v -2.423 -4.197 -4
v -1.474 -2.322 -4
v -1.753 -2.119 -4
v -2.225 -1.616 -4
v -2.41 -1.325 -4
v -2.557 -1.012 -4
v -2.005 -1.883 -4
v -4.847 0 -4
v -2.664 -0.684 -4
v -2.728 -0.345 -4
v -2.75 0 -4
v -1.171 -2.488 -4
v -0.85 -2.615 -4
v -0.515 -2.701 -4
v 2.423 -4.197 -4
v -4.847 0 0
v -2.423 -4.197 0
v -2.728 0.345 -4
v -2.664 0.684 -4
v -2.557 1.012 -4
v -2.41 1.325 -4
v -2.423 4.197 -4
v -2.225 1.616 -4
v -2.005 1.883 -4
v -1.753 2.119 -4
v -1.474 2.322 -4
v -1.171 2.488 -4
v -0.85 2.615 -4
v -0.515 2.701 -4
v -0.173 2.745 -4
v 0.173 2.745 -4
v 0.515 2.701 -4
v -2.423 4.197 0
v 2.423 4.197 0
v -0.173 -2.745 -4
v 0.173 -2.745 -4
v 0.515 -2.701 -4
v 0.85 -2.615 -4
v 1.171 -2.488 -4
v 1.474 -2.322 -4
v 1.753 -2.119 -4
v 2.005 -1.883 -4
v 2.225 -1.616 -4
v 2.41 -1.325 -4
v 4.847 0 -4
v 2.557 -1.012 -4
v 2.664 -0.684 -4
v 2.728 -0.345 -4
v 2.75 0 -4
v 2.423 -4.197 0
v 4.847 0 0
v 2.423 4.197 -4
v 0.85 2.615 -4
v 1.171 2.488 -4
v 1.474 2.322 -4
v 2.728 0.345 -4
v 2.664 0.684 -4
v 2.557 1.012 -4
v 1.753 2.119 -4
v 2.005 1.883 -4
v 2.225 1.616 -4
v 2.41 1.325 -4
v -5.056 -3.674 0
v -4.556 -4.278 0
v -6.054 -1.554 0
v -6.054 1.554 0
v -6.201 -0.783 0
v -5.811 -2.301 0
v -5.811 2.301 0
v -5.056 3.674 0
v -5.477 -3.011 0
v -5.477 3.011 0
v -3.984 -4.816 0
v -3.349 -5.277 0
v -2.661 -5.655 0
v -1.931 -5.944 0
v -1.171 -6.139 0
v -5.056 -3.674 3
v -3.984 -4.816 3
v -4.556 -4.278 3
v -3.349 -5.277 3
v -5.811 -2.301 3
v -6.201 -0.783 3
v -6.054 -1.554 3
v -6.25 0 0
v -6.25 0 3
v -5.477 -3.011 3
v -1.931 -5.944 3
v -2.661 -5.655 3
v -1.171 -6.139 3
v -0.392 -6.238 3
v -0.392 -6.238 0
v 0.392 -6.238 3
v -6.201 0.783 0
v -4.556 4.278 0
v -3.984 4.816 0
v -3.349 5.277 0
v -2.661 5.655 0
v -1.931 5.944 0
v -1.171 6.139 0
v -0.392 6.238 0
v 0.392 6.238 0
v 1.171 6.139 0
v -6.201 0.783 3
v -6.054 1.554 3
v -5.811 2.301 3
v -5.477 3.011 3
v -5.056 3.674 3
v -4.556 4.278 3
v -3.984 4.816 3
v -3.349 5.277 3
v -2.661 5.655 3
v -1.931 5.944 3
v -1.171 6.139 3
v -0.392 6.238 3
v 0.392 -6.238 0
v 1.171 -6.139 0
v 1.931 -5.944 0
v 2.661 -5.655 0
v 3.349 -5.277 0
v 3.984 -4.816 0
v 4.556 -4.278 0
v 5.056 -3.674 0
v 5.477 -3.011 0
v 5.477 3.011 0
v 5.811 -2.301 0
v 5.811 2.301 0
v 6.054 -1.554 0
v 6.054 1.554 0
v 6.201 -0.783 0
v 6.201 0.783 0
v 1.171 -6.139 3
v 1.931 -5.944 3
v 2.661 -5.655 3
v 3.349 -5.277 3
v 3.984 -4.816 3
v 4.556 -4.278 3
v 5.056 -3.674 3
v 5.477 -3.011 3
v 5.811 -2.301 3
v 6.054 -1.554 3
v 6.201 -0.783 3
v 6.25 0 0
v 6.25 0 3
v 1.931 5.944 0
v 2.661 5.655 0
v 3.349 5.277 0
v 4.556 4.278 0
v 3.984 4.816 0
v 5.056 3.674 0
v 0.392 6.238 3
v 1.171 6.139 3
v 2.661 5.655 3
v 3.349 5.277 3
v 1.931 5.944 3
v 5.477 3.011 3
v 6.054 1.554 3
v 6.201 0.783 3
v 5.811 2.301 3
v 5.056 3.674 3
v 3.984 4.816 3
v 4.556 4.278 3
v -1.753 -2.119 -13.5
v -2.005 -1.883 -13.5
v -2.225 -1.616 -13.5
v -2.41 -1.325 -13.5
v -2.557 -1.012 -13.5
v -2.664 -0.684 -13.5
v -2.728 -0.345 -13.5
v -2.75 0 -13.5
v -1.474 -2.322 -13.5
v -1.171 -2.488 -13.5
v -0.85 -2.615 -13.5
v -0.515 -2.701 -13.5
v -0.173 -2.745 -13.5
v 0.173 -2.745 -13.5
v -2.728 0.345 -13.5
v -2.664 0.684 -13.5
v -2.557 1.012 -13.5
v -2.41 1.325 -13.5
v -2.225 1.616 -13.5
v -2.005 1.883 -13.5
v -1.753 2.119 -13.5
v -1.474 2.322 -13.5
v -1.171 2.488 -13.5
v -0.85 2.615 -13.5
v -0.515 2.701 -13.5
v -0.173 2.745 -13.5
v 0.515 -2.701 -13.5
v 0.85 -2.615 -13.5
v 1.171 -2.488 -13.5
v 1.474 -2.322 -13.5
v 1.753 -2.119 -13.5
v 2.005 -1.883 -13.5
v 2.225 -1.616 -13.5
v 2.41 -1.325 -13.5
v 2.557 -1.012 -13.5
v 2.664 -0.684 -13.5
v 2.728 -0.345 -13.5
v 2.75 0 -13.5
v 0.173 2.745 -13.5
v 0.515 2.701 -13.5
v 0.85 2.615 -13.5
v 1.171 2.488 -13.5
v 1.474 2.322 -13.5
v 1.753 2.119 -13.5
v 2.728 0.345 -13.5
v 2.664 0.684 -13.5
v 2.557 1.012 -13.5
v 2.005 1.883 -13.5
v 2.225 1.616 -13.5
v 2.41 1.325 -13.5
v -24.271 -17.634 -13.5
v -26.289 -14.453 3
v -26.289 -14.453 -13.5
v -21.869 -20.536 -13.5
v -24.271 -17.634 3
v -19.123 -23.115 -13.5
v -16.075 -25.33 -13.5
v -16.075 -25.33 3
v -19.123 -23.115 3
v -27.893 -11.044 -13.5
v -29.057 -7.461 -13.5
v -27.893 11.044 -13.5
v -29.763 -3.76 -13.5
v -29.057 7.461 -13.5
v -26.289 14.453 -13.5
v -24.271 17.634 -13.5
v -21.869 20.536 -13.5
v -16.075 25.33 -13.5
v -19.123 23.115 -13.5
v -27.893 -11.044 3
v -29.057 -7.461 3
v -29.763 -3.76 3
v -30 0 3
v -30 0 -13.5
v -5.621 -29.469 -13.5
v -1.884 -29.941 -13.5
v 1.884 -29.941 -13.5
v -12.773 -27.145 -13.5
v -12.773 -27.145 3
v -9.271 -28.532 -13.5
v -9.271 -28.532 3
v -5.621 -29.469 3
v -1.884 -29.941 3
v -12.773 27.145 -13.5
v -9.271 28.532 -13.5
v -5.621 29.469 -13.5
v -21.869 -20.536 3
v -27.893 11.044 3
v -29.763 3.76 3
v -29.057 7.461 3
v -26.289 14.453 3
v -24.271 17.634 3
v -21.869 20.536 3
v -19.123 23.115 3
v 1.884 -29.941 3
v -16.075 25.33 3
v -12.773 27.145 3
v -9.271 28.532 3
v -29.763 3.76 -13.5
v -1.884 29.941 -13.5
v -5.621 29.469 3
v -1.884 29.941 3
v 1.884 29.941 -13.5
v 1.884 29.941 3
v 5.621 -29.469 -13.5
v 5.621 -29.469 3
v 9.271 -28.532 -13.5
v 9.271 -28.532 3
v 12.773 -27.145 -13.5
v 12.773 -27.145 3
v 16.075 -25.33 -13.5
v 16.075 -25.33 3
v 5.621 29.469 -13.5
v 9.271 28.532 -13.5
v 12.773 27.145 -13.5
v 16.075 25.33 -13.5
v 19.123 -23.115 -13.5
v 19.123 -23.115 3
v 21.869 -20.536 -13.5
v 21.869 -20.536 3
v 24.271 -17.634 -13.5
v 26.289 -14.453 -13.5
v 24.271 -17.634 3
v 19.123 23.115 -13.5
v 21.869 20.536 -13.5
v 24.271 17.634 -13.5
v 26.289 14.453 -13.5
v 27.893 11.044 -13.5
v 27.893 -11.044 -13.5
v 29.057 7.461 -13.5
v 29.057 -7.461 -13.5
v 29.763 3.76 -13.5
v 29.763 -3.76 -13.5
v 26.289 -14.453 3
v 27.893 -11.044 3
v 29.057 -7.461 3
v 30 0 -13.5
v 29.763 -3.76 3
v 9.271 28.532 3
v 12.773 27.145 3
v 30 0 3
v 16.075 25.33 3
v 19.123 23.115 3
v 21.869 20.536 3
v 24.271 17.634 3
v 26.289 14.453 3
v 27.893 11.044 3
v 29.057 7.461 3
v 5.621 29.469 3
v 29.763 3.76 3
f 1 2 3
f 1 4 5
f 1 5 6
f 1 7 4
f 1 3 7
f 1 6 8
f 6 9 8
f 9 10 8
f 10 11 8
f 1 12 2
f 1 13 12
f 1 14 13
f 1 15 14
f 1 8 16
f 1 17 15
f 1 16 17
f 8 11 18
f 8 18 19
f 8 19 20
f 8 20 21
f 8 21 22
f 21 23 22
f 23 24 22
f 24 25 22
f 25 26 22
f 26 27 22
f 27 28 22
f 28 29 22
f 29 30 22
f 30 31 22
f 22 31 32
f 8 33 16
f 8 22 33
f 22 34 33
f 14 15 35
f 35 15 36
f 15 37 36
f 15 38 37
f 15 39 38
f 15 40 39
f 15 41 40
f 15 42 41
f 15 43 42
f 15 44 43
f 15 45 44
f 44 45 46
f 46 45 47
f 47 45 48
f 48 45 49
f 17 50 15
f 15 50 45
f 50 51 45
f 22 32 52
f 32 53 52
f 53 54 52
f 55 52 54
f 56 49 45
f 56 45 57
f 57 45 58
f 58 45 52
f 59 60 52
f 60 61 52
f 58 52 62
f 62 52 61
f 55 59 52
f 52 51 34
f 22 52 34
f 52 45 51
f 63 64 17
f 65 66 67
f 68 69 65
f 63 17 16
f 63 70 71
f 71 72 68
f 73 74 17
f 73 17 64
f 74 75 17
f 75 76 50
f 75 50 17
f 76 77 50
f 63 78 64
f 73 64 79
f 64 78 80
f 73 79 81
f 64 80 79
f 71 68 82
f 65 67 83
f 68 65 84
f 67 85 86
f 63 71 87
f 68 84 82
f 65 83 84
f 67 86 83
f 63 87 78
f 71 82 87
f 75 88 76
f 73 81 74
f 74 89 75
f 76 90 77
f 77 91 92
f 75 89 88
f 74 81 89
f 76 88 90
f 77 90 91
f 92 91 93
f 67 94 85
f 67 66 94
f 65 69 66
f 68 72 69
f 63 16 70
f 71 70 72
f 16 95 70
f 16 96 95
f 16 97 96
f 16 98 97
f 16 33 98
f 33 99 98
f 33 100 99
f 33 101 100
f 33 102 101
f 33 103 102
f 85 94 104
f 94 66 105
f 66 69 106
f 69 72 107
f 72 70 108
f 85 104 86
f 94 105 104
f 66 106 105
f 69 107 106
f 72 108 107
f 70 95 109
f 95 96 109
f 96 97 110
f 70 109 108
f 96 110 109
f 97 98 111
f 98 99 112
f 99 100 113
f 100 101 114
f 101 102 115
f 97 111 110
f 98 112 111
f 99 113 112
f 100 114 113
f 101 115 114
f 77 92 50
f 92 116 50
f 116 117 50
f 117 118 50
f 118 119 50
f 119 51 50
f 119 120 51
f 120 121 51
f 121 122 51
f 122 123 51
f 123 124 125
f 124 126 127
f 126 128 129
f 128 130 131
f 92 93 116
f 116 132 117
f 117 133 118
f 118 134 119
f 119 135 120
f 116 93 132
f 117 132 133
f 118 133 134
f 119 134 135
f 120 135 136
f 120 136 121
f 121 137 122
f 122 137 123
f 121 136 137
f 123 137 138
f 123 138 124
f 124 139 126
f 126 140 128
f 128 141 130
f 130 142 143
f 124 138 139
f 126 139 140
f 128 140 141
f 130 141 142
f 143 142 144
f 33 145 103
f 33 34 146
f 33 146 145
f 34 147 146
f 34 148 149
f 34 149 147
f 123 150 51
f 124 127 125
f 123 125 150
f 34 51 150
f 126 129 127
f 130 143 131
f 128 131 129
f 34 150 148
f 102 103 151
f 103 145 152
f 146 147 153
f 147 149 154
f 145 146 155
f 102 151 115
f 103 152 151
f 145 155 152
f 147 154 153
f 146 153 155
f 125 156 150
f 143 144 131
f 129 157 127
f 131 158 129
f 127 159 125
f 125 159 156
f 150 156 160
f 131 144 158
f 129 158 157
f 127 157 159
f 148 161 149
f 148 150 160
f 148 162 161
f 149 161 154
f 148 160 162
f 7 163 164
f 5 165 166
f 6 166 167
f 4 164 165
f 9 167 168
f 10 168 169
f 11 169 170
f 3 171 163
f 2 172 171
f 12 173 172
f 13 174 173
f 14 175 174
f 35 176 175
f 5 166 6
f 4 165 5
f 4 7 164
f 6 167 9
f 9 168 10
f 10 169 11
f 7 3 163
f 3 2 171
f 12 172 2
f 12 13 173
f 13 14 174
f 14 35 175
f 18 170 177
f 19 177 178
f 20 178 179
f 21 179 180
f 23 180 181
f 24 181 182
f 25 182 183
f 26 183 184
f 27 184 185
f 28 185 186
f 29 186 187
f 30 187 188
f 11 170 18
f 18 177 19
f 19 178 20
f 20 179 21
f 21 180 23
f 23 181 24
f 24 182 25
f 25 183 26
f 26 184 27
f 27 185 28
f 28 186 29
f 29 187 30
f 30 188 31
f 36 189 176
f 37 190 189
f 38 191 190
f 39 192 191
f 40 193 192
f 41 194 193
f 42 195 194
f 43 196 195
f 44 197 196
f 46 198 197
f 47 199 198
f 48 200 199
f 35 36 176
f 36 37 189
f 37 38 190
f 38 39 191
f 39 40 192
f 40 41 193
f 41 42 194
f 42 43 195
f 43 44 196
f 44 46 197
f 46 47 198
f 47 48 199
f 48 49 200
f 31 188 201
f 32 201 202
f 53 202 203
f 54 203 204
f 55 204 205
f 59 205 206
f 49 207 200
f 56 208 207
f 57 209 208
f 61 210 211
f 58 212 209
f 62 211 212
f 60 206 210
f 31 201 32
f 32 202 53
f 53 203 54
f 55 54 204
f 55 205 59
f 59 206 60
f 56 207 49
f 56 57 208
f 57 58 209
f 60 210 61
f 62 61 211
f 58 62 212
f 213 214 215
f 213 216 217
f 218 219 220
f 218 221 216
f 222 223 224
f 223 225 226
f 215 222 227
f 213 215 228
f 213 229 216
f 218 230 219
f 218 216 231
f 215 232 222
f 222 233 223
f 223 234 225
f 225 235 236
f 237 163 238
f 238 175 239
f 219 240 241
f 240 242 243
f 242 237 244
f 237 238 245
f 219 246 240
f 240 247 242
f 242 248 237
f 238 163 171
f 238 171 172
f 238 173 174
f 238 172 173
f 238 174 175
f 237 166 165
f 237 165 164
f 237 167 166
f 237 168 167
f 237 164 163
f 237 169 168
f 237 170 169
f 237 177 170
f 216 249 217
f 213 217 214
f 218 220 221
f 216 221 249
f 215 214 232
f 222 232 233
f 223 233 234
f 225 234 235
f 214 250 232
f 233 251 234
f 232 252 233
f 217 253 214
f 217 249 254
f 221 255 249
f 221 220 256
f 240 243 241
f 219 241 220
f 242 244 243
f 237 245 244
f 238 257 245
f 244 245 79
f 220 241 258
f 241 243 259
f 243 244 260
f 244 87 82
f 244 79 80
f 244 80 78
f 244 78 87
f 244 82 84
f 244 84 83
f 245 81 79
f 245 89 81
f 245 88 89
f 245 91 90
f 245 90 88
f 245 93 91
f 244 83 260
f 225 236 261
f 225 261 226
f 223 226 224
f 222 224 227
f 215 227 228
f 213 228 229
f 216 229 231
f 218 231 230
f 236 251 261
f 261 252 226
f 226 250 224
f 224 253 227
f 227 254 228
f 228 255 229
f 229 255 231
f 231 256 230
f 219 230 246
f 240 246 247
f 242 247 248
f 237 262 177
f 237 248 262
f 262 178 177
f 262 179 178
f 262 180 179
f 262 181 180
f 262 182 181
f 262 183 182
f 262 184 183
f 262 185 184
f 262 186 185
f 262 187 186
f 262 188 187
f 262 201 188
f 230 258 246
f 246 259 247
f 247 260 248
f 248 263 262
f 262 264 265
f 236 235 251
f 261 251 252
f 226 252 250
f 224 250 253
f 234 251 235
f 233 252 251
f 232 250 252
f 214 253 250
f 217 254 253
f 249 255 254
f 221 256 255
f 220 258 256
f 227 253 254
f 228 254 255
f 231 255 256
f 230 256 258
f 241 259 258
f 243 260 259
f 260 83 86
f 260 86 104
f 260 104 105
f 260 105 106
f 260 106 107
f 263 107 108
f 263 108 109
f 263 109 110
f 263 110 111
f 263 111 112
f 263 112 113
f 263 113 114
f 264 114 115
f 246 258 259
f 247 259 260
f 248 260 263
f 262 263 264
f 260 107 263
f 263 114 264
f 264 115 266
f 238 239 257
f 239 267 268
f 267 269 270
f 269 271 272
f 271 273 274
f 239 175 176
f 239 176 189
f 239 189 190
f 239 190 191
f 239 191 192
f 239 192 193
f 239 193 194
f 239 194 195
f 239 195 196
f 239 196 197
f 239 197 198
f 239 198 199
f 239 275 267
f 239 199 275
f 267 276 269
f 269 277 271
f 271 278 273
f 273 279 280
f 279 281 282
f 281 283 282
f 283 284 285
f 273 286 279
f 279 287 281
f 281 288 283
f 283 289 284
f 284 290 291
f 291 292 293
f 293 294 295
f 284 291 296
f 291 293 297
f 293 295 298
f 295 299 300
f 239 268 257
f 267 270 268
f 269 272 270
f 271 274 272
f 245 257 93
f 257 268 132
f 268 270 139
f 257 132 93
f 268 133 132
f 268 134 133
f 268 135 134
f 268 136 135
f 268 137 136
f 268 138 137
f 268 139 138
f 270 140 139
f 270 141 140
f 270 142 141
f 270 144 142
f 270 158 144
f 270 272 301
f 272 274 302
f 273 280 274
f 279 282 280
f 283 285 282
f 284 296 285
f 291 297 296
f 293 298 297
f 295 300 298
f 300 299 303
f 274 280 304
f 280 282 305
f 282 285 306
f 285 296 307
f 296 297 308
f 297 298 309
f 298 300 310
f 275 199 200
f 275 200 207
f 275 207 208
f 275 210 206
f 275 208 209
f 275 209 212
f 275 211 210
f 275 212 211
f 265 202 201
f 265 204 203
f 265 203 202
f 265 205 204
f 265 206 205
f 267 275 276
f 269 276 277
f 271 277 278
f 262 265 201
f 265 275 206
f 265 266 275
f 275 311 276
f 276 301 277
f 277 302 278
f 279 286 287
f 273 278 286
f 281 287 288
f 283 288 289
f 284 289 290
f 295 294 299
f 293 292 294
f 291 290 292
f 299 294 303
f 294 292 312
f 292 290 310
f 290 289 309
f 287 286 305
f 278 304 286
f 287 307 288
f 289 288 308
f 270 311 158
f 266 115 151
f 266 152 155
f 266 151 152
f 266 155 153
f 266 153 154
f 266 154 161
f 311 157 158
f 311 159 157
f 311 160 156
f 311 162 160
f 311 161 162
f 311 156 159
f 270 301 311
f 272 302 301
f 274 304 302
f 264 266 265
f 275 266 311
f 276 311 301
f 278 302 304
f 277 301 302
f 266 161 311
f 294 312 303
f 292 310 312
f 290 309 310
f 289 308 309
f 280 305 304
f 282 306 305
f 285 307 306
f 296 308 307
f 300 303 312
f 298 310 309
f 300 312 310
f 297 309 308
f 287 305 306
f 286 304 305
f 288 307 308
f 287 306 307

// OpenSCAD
$fn = 50;


difference() {
	union() {
		translate(v = [0, 0, -13.5000000000]) {
			cylinder(h = 16.5000000000, r = 30.0000000000);
		}
	}
	union() {
		translate(v = [0, 0, 0]) {
			rotate(a = [0, 0, 0]) {
				difference() {
					union() {
						translate(v = [0, 0, -4]) {
							linear_extrude(height = 4) {
								polygon(points = [[4.8468000000, 0.0000000000], [2.4234000000, 4.1974519271], [-2.4234000000, 4.1974519271], [-4.8468000000, 0.0000000000], [-2.4234000000, -4.1974519271], [2.4234000000, -4.1974519271]]);
							}
						}
					}
					union();
				}
			}
		}
		#cylinder(h = 3, r = 6.2500000000);
		#translate(v = [0, 0, -100.0000000000]) {
			cylinder(h = 200, r = 2.7500000000);
		}
	}
}
